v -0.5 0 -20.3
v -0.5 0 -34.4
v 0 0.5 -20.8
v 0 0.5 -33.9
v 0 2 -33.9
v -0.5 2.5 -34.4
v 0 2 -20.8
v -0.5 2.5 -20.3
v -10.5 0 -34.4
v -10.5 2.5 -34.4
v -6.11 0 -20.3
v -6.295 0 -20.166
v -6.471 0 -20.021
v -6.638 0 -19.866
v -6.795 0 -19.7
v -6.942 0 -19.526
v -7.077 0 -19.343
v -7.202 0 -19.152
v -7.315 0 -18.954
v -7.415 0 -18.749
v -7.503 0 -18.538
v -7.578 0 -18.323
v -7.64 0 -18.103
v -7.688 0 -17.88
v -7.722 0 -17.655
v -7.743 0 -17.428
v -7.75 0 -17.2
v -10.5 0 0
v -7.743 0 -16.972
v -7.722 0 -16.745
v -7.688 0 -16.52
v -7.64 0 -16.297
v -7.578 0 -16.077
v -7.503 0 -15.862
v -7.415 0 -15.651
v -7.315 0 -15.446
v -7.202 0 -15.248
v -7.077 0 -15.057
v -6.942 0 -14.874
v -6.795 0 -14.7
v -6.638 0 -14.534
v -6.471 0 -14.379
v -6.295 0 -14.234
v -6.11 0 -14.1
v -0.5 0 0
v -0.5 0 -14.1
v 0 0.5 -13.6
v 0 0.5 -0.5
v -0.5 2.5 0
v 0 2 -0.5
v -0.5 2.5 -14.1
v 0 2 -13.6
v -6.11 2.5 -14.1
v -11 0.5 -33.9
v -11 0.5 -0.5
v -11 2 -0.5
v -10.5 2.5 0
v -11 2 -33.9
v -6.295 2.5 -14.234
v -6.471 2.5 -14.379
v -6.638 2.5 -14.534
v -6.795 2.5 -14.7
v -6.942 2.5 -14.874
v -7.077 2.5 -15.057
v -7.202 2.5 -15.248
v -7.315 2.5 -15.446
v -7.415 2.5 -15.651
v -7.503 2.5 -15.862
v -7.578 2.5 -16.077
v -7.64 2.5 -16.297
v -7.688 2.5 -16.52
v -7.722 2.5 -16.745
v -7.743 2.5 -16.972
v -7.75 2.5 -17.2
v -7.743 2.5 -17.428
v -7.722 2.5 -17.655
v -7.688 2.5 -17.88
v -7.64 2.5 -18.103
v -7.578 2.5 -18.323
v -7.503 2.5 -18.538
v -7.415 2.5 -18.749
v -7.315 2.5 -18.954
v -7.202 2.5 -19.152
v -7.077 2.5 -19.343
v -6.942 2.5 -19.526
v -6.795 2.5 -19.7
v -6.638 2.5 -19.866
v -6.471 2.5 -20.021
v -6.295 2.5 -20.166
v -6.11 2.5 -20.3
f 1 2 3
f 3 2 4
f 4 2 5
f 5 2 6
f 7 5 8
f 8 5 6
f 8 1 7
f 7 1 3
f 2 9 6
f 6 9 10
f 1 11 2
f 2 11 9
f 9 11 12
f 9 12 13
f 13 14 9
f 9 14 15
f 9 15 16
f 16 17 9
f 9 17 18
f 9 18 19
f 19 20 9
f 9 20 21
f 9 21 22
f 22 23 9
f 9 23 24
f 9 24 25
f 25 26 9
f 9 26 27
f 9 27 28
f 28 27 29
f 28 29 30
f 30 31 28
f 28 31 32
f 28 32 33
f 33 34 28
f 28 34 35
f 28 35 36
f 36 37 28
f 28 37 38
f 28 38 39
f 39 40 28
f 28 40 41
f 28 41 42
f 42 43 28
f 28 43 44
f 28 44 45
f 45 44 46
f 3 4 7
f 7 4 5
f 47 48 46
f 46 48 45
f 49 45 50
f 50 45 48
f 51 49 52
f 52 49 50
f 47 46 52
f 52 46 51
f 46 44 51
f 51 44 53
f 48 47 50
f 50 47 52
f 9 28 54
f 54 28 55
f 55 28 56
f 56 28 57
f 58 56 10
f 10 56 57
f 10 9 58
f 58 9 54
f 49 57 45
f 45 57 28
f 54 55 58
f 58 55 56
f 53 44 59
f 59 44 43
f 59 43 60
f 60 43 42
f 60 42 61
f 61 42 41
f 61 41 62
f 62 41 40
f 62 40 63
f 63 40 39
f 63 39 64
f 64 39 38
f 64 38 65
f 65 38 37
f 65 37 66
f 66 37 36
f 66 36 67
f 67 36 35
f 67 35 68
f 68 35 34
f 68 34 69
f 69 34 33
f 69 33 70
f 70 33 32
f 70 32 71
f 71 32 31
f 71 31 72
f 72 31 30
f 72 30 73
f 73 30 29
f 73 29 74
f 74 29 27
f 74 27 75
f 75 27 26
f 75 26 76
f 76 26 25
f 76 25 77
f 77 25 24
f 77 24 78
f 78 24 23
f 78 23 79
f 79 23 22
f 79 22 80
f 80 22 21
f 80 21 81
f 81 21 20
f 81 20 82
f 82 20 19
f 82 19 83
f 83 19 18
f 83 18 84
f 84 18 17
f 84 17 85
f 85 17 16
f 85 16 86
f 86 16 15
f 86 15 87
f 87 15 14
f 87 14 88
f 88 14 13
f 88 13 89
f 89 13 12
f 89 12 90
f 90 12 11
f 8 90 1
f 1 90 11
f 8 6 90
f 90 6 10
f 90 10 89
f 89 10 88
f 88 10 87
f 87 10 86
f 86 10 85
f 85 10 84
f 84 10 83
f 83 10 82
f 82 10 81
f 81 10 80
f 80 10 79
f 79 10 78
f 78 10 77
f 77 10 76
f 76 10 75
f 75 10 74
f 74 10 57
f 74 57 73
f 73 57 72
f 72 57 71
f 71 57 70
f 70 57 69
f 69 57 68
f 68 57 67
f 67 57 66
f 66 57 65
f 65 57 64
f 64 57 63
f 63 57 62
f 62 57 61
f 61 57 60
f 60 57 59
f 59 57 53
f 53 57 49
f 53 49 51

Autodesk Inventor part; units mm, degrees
ref_plane "YZ Plane" through (0, 0, 0) normal (1, 0, 0) x (0, 1, 0)
ref_plane "XZ Plane" through (0, 0, 0) normal (0, 1, 0) x (-1, 0, 0)
ref_plane "XY Plane" through (0, 0, 0) normal (0, 0, 1) x (1, 0, 0)
sketch "S-Base" plane through (0, 0, 0) normal (0, 1, 0) x (-1, 0, 0)
  line L0 (0, 0) -> (11, 0)
  line L1 (11, 0) -> (11, -34.4)
  line L2 (11, -34.4) -> (0, -34.4)
  line L3 (0, -34.4) -> (0, 0)
  circle A0 centre (4, -17.2) radius 3.5
  line L4 (0, -14.1) -> (7.5, -14.1)
  line L5 (7.5, -14.1) -> (7.5, -20.3)
  line L6 (7.5, -20.3) -> (0, -20.3)
  line L7 (0, -20.3) -> (0, -14.1) construction
  line L8 (7.5, -17.2) -> (0, -17.2) construction
  circle A1 centre (4, -17.2) radius 3.75
  point P0 (6.1101, -20.3)
  point P1 (0, -20.3)
  point P2 (6.1101, -14.1)
  dimension "d1" = 7
  dimension "d0" = 34.4
  dimension "d2" = 17.2
  dimension "d3" = 6.2
  dimension "d4" = 11
  dimension "d5" = 7.5
  dimension "d6" = 0.25
extrude "Ex-Base" add sketch "S-Base" along normal blind 2.5 contours L0 L1 L2 L3 L6 A1 L5 L4 | A1 L4 A0 | L6 A0 A1 | A0 L4 | L4 L5 A1 | L6 A0 | A1 L5 L6
chamfer "Fase1" distance 0.5 angle 45 12 edges at (-11, 1.25, 0) (0, 1.25, 0) (0, 1.25, -34.4) (-11, 1.25, -34.4) (0, 1.25, -20.3) (0, 1.25, -14.1) (-11, 2.5, -17.2) (-11, 0, -17.2) (0, 2.5, -7.05) (0, 0, -7.05) (0, 2.5, -27.35) (0, 0, -27.35)
equation "\"d2\" = 0.5 * d0"
properties part number "ProbeHead_Kabelfixieung_V2"
